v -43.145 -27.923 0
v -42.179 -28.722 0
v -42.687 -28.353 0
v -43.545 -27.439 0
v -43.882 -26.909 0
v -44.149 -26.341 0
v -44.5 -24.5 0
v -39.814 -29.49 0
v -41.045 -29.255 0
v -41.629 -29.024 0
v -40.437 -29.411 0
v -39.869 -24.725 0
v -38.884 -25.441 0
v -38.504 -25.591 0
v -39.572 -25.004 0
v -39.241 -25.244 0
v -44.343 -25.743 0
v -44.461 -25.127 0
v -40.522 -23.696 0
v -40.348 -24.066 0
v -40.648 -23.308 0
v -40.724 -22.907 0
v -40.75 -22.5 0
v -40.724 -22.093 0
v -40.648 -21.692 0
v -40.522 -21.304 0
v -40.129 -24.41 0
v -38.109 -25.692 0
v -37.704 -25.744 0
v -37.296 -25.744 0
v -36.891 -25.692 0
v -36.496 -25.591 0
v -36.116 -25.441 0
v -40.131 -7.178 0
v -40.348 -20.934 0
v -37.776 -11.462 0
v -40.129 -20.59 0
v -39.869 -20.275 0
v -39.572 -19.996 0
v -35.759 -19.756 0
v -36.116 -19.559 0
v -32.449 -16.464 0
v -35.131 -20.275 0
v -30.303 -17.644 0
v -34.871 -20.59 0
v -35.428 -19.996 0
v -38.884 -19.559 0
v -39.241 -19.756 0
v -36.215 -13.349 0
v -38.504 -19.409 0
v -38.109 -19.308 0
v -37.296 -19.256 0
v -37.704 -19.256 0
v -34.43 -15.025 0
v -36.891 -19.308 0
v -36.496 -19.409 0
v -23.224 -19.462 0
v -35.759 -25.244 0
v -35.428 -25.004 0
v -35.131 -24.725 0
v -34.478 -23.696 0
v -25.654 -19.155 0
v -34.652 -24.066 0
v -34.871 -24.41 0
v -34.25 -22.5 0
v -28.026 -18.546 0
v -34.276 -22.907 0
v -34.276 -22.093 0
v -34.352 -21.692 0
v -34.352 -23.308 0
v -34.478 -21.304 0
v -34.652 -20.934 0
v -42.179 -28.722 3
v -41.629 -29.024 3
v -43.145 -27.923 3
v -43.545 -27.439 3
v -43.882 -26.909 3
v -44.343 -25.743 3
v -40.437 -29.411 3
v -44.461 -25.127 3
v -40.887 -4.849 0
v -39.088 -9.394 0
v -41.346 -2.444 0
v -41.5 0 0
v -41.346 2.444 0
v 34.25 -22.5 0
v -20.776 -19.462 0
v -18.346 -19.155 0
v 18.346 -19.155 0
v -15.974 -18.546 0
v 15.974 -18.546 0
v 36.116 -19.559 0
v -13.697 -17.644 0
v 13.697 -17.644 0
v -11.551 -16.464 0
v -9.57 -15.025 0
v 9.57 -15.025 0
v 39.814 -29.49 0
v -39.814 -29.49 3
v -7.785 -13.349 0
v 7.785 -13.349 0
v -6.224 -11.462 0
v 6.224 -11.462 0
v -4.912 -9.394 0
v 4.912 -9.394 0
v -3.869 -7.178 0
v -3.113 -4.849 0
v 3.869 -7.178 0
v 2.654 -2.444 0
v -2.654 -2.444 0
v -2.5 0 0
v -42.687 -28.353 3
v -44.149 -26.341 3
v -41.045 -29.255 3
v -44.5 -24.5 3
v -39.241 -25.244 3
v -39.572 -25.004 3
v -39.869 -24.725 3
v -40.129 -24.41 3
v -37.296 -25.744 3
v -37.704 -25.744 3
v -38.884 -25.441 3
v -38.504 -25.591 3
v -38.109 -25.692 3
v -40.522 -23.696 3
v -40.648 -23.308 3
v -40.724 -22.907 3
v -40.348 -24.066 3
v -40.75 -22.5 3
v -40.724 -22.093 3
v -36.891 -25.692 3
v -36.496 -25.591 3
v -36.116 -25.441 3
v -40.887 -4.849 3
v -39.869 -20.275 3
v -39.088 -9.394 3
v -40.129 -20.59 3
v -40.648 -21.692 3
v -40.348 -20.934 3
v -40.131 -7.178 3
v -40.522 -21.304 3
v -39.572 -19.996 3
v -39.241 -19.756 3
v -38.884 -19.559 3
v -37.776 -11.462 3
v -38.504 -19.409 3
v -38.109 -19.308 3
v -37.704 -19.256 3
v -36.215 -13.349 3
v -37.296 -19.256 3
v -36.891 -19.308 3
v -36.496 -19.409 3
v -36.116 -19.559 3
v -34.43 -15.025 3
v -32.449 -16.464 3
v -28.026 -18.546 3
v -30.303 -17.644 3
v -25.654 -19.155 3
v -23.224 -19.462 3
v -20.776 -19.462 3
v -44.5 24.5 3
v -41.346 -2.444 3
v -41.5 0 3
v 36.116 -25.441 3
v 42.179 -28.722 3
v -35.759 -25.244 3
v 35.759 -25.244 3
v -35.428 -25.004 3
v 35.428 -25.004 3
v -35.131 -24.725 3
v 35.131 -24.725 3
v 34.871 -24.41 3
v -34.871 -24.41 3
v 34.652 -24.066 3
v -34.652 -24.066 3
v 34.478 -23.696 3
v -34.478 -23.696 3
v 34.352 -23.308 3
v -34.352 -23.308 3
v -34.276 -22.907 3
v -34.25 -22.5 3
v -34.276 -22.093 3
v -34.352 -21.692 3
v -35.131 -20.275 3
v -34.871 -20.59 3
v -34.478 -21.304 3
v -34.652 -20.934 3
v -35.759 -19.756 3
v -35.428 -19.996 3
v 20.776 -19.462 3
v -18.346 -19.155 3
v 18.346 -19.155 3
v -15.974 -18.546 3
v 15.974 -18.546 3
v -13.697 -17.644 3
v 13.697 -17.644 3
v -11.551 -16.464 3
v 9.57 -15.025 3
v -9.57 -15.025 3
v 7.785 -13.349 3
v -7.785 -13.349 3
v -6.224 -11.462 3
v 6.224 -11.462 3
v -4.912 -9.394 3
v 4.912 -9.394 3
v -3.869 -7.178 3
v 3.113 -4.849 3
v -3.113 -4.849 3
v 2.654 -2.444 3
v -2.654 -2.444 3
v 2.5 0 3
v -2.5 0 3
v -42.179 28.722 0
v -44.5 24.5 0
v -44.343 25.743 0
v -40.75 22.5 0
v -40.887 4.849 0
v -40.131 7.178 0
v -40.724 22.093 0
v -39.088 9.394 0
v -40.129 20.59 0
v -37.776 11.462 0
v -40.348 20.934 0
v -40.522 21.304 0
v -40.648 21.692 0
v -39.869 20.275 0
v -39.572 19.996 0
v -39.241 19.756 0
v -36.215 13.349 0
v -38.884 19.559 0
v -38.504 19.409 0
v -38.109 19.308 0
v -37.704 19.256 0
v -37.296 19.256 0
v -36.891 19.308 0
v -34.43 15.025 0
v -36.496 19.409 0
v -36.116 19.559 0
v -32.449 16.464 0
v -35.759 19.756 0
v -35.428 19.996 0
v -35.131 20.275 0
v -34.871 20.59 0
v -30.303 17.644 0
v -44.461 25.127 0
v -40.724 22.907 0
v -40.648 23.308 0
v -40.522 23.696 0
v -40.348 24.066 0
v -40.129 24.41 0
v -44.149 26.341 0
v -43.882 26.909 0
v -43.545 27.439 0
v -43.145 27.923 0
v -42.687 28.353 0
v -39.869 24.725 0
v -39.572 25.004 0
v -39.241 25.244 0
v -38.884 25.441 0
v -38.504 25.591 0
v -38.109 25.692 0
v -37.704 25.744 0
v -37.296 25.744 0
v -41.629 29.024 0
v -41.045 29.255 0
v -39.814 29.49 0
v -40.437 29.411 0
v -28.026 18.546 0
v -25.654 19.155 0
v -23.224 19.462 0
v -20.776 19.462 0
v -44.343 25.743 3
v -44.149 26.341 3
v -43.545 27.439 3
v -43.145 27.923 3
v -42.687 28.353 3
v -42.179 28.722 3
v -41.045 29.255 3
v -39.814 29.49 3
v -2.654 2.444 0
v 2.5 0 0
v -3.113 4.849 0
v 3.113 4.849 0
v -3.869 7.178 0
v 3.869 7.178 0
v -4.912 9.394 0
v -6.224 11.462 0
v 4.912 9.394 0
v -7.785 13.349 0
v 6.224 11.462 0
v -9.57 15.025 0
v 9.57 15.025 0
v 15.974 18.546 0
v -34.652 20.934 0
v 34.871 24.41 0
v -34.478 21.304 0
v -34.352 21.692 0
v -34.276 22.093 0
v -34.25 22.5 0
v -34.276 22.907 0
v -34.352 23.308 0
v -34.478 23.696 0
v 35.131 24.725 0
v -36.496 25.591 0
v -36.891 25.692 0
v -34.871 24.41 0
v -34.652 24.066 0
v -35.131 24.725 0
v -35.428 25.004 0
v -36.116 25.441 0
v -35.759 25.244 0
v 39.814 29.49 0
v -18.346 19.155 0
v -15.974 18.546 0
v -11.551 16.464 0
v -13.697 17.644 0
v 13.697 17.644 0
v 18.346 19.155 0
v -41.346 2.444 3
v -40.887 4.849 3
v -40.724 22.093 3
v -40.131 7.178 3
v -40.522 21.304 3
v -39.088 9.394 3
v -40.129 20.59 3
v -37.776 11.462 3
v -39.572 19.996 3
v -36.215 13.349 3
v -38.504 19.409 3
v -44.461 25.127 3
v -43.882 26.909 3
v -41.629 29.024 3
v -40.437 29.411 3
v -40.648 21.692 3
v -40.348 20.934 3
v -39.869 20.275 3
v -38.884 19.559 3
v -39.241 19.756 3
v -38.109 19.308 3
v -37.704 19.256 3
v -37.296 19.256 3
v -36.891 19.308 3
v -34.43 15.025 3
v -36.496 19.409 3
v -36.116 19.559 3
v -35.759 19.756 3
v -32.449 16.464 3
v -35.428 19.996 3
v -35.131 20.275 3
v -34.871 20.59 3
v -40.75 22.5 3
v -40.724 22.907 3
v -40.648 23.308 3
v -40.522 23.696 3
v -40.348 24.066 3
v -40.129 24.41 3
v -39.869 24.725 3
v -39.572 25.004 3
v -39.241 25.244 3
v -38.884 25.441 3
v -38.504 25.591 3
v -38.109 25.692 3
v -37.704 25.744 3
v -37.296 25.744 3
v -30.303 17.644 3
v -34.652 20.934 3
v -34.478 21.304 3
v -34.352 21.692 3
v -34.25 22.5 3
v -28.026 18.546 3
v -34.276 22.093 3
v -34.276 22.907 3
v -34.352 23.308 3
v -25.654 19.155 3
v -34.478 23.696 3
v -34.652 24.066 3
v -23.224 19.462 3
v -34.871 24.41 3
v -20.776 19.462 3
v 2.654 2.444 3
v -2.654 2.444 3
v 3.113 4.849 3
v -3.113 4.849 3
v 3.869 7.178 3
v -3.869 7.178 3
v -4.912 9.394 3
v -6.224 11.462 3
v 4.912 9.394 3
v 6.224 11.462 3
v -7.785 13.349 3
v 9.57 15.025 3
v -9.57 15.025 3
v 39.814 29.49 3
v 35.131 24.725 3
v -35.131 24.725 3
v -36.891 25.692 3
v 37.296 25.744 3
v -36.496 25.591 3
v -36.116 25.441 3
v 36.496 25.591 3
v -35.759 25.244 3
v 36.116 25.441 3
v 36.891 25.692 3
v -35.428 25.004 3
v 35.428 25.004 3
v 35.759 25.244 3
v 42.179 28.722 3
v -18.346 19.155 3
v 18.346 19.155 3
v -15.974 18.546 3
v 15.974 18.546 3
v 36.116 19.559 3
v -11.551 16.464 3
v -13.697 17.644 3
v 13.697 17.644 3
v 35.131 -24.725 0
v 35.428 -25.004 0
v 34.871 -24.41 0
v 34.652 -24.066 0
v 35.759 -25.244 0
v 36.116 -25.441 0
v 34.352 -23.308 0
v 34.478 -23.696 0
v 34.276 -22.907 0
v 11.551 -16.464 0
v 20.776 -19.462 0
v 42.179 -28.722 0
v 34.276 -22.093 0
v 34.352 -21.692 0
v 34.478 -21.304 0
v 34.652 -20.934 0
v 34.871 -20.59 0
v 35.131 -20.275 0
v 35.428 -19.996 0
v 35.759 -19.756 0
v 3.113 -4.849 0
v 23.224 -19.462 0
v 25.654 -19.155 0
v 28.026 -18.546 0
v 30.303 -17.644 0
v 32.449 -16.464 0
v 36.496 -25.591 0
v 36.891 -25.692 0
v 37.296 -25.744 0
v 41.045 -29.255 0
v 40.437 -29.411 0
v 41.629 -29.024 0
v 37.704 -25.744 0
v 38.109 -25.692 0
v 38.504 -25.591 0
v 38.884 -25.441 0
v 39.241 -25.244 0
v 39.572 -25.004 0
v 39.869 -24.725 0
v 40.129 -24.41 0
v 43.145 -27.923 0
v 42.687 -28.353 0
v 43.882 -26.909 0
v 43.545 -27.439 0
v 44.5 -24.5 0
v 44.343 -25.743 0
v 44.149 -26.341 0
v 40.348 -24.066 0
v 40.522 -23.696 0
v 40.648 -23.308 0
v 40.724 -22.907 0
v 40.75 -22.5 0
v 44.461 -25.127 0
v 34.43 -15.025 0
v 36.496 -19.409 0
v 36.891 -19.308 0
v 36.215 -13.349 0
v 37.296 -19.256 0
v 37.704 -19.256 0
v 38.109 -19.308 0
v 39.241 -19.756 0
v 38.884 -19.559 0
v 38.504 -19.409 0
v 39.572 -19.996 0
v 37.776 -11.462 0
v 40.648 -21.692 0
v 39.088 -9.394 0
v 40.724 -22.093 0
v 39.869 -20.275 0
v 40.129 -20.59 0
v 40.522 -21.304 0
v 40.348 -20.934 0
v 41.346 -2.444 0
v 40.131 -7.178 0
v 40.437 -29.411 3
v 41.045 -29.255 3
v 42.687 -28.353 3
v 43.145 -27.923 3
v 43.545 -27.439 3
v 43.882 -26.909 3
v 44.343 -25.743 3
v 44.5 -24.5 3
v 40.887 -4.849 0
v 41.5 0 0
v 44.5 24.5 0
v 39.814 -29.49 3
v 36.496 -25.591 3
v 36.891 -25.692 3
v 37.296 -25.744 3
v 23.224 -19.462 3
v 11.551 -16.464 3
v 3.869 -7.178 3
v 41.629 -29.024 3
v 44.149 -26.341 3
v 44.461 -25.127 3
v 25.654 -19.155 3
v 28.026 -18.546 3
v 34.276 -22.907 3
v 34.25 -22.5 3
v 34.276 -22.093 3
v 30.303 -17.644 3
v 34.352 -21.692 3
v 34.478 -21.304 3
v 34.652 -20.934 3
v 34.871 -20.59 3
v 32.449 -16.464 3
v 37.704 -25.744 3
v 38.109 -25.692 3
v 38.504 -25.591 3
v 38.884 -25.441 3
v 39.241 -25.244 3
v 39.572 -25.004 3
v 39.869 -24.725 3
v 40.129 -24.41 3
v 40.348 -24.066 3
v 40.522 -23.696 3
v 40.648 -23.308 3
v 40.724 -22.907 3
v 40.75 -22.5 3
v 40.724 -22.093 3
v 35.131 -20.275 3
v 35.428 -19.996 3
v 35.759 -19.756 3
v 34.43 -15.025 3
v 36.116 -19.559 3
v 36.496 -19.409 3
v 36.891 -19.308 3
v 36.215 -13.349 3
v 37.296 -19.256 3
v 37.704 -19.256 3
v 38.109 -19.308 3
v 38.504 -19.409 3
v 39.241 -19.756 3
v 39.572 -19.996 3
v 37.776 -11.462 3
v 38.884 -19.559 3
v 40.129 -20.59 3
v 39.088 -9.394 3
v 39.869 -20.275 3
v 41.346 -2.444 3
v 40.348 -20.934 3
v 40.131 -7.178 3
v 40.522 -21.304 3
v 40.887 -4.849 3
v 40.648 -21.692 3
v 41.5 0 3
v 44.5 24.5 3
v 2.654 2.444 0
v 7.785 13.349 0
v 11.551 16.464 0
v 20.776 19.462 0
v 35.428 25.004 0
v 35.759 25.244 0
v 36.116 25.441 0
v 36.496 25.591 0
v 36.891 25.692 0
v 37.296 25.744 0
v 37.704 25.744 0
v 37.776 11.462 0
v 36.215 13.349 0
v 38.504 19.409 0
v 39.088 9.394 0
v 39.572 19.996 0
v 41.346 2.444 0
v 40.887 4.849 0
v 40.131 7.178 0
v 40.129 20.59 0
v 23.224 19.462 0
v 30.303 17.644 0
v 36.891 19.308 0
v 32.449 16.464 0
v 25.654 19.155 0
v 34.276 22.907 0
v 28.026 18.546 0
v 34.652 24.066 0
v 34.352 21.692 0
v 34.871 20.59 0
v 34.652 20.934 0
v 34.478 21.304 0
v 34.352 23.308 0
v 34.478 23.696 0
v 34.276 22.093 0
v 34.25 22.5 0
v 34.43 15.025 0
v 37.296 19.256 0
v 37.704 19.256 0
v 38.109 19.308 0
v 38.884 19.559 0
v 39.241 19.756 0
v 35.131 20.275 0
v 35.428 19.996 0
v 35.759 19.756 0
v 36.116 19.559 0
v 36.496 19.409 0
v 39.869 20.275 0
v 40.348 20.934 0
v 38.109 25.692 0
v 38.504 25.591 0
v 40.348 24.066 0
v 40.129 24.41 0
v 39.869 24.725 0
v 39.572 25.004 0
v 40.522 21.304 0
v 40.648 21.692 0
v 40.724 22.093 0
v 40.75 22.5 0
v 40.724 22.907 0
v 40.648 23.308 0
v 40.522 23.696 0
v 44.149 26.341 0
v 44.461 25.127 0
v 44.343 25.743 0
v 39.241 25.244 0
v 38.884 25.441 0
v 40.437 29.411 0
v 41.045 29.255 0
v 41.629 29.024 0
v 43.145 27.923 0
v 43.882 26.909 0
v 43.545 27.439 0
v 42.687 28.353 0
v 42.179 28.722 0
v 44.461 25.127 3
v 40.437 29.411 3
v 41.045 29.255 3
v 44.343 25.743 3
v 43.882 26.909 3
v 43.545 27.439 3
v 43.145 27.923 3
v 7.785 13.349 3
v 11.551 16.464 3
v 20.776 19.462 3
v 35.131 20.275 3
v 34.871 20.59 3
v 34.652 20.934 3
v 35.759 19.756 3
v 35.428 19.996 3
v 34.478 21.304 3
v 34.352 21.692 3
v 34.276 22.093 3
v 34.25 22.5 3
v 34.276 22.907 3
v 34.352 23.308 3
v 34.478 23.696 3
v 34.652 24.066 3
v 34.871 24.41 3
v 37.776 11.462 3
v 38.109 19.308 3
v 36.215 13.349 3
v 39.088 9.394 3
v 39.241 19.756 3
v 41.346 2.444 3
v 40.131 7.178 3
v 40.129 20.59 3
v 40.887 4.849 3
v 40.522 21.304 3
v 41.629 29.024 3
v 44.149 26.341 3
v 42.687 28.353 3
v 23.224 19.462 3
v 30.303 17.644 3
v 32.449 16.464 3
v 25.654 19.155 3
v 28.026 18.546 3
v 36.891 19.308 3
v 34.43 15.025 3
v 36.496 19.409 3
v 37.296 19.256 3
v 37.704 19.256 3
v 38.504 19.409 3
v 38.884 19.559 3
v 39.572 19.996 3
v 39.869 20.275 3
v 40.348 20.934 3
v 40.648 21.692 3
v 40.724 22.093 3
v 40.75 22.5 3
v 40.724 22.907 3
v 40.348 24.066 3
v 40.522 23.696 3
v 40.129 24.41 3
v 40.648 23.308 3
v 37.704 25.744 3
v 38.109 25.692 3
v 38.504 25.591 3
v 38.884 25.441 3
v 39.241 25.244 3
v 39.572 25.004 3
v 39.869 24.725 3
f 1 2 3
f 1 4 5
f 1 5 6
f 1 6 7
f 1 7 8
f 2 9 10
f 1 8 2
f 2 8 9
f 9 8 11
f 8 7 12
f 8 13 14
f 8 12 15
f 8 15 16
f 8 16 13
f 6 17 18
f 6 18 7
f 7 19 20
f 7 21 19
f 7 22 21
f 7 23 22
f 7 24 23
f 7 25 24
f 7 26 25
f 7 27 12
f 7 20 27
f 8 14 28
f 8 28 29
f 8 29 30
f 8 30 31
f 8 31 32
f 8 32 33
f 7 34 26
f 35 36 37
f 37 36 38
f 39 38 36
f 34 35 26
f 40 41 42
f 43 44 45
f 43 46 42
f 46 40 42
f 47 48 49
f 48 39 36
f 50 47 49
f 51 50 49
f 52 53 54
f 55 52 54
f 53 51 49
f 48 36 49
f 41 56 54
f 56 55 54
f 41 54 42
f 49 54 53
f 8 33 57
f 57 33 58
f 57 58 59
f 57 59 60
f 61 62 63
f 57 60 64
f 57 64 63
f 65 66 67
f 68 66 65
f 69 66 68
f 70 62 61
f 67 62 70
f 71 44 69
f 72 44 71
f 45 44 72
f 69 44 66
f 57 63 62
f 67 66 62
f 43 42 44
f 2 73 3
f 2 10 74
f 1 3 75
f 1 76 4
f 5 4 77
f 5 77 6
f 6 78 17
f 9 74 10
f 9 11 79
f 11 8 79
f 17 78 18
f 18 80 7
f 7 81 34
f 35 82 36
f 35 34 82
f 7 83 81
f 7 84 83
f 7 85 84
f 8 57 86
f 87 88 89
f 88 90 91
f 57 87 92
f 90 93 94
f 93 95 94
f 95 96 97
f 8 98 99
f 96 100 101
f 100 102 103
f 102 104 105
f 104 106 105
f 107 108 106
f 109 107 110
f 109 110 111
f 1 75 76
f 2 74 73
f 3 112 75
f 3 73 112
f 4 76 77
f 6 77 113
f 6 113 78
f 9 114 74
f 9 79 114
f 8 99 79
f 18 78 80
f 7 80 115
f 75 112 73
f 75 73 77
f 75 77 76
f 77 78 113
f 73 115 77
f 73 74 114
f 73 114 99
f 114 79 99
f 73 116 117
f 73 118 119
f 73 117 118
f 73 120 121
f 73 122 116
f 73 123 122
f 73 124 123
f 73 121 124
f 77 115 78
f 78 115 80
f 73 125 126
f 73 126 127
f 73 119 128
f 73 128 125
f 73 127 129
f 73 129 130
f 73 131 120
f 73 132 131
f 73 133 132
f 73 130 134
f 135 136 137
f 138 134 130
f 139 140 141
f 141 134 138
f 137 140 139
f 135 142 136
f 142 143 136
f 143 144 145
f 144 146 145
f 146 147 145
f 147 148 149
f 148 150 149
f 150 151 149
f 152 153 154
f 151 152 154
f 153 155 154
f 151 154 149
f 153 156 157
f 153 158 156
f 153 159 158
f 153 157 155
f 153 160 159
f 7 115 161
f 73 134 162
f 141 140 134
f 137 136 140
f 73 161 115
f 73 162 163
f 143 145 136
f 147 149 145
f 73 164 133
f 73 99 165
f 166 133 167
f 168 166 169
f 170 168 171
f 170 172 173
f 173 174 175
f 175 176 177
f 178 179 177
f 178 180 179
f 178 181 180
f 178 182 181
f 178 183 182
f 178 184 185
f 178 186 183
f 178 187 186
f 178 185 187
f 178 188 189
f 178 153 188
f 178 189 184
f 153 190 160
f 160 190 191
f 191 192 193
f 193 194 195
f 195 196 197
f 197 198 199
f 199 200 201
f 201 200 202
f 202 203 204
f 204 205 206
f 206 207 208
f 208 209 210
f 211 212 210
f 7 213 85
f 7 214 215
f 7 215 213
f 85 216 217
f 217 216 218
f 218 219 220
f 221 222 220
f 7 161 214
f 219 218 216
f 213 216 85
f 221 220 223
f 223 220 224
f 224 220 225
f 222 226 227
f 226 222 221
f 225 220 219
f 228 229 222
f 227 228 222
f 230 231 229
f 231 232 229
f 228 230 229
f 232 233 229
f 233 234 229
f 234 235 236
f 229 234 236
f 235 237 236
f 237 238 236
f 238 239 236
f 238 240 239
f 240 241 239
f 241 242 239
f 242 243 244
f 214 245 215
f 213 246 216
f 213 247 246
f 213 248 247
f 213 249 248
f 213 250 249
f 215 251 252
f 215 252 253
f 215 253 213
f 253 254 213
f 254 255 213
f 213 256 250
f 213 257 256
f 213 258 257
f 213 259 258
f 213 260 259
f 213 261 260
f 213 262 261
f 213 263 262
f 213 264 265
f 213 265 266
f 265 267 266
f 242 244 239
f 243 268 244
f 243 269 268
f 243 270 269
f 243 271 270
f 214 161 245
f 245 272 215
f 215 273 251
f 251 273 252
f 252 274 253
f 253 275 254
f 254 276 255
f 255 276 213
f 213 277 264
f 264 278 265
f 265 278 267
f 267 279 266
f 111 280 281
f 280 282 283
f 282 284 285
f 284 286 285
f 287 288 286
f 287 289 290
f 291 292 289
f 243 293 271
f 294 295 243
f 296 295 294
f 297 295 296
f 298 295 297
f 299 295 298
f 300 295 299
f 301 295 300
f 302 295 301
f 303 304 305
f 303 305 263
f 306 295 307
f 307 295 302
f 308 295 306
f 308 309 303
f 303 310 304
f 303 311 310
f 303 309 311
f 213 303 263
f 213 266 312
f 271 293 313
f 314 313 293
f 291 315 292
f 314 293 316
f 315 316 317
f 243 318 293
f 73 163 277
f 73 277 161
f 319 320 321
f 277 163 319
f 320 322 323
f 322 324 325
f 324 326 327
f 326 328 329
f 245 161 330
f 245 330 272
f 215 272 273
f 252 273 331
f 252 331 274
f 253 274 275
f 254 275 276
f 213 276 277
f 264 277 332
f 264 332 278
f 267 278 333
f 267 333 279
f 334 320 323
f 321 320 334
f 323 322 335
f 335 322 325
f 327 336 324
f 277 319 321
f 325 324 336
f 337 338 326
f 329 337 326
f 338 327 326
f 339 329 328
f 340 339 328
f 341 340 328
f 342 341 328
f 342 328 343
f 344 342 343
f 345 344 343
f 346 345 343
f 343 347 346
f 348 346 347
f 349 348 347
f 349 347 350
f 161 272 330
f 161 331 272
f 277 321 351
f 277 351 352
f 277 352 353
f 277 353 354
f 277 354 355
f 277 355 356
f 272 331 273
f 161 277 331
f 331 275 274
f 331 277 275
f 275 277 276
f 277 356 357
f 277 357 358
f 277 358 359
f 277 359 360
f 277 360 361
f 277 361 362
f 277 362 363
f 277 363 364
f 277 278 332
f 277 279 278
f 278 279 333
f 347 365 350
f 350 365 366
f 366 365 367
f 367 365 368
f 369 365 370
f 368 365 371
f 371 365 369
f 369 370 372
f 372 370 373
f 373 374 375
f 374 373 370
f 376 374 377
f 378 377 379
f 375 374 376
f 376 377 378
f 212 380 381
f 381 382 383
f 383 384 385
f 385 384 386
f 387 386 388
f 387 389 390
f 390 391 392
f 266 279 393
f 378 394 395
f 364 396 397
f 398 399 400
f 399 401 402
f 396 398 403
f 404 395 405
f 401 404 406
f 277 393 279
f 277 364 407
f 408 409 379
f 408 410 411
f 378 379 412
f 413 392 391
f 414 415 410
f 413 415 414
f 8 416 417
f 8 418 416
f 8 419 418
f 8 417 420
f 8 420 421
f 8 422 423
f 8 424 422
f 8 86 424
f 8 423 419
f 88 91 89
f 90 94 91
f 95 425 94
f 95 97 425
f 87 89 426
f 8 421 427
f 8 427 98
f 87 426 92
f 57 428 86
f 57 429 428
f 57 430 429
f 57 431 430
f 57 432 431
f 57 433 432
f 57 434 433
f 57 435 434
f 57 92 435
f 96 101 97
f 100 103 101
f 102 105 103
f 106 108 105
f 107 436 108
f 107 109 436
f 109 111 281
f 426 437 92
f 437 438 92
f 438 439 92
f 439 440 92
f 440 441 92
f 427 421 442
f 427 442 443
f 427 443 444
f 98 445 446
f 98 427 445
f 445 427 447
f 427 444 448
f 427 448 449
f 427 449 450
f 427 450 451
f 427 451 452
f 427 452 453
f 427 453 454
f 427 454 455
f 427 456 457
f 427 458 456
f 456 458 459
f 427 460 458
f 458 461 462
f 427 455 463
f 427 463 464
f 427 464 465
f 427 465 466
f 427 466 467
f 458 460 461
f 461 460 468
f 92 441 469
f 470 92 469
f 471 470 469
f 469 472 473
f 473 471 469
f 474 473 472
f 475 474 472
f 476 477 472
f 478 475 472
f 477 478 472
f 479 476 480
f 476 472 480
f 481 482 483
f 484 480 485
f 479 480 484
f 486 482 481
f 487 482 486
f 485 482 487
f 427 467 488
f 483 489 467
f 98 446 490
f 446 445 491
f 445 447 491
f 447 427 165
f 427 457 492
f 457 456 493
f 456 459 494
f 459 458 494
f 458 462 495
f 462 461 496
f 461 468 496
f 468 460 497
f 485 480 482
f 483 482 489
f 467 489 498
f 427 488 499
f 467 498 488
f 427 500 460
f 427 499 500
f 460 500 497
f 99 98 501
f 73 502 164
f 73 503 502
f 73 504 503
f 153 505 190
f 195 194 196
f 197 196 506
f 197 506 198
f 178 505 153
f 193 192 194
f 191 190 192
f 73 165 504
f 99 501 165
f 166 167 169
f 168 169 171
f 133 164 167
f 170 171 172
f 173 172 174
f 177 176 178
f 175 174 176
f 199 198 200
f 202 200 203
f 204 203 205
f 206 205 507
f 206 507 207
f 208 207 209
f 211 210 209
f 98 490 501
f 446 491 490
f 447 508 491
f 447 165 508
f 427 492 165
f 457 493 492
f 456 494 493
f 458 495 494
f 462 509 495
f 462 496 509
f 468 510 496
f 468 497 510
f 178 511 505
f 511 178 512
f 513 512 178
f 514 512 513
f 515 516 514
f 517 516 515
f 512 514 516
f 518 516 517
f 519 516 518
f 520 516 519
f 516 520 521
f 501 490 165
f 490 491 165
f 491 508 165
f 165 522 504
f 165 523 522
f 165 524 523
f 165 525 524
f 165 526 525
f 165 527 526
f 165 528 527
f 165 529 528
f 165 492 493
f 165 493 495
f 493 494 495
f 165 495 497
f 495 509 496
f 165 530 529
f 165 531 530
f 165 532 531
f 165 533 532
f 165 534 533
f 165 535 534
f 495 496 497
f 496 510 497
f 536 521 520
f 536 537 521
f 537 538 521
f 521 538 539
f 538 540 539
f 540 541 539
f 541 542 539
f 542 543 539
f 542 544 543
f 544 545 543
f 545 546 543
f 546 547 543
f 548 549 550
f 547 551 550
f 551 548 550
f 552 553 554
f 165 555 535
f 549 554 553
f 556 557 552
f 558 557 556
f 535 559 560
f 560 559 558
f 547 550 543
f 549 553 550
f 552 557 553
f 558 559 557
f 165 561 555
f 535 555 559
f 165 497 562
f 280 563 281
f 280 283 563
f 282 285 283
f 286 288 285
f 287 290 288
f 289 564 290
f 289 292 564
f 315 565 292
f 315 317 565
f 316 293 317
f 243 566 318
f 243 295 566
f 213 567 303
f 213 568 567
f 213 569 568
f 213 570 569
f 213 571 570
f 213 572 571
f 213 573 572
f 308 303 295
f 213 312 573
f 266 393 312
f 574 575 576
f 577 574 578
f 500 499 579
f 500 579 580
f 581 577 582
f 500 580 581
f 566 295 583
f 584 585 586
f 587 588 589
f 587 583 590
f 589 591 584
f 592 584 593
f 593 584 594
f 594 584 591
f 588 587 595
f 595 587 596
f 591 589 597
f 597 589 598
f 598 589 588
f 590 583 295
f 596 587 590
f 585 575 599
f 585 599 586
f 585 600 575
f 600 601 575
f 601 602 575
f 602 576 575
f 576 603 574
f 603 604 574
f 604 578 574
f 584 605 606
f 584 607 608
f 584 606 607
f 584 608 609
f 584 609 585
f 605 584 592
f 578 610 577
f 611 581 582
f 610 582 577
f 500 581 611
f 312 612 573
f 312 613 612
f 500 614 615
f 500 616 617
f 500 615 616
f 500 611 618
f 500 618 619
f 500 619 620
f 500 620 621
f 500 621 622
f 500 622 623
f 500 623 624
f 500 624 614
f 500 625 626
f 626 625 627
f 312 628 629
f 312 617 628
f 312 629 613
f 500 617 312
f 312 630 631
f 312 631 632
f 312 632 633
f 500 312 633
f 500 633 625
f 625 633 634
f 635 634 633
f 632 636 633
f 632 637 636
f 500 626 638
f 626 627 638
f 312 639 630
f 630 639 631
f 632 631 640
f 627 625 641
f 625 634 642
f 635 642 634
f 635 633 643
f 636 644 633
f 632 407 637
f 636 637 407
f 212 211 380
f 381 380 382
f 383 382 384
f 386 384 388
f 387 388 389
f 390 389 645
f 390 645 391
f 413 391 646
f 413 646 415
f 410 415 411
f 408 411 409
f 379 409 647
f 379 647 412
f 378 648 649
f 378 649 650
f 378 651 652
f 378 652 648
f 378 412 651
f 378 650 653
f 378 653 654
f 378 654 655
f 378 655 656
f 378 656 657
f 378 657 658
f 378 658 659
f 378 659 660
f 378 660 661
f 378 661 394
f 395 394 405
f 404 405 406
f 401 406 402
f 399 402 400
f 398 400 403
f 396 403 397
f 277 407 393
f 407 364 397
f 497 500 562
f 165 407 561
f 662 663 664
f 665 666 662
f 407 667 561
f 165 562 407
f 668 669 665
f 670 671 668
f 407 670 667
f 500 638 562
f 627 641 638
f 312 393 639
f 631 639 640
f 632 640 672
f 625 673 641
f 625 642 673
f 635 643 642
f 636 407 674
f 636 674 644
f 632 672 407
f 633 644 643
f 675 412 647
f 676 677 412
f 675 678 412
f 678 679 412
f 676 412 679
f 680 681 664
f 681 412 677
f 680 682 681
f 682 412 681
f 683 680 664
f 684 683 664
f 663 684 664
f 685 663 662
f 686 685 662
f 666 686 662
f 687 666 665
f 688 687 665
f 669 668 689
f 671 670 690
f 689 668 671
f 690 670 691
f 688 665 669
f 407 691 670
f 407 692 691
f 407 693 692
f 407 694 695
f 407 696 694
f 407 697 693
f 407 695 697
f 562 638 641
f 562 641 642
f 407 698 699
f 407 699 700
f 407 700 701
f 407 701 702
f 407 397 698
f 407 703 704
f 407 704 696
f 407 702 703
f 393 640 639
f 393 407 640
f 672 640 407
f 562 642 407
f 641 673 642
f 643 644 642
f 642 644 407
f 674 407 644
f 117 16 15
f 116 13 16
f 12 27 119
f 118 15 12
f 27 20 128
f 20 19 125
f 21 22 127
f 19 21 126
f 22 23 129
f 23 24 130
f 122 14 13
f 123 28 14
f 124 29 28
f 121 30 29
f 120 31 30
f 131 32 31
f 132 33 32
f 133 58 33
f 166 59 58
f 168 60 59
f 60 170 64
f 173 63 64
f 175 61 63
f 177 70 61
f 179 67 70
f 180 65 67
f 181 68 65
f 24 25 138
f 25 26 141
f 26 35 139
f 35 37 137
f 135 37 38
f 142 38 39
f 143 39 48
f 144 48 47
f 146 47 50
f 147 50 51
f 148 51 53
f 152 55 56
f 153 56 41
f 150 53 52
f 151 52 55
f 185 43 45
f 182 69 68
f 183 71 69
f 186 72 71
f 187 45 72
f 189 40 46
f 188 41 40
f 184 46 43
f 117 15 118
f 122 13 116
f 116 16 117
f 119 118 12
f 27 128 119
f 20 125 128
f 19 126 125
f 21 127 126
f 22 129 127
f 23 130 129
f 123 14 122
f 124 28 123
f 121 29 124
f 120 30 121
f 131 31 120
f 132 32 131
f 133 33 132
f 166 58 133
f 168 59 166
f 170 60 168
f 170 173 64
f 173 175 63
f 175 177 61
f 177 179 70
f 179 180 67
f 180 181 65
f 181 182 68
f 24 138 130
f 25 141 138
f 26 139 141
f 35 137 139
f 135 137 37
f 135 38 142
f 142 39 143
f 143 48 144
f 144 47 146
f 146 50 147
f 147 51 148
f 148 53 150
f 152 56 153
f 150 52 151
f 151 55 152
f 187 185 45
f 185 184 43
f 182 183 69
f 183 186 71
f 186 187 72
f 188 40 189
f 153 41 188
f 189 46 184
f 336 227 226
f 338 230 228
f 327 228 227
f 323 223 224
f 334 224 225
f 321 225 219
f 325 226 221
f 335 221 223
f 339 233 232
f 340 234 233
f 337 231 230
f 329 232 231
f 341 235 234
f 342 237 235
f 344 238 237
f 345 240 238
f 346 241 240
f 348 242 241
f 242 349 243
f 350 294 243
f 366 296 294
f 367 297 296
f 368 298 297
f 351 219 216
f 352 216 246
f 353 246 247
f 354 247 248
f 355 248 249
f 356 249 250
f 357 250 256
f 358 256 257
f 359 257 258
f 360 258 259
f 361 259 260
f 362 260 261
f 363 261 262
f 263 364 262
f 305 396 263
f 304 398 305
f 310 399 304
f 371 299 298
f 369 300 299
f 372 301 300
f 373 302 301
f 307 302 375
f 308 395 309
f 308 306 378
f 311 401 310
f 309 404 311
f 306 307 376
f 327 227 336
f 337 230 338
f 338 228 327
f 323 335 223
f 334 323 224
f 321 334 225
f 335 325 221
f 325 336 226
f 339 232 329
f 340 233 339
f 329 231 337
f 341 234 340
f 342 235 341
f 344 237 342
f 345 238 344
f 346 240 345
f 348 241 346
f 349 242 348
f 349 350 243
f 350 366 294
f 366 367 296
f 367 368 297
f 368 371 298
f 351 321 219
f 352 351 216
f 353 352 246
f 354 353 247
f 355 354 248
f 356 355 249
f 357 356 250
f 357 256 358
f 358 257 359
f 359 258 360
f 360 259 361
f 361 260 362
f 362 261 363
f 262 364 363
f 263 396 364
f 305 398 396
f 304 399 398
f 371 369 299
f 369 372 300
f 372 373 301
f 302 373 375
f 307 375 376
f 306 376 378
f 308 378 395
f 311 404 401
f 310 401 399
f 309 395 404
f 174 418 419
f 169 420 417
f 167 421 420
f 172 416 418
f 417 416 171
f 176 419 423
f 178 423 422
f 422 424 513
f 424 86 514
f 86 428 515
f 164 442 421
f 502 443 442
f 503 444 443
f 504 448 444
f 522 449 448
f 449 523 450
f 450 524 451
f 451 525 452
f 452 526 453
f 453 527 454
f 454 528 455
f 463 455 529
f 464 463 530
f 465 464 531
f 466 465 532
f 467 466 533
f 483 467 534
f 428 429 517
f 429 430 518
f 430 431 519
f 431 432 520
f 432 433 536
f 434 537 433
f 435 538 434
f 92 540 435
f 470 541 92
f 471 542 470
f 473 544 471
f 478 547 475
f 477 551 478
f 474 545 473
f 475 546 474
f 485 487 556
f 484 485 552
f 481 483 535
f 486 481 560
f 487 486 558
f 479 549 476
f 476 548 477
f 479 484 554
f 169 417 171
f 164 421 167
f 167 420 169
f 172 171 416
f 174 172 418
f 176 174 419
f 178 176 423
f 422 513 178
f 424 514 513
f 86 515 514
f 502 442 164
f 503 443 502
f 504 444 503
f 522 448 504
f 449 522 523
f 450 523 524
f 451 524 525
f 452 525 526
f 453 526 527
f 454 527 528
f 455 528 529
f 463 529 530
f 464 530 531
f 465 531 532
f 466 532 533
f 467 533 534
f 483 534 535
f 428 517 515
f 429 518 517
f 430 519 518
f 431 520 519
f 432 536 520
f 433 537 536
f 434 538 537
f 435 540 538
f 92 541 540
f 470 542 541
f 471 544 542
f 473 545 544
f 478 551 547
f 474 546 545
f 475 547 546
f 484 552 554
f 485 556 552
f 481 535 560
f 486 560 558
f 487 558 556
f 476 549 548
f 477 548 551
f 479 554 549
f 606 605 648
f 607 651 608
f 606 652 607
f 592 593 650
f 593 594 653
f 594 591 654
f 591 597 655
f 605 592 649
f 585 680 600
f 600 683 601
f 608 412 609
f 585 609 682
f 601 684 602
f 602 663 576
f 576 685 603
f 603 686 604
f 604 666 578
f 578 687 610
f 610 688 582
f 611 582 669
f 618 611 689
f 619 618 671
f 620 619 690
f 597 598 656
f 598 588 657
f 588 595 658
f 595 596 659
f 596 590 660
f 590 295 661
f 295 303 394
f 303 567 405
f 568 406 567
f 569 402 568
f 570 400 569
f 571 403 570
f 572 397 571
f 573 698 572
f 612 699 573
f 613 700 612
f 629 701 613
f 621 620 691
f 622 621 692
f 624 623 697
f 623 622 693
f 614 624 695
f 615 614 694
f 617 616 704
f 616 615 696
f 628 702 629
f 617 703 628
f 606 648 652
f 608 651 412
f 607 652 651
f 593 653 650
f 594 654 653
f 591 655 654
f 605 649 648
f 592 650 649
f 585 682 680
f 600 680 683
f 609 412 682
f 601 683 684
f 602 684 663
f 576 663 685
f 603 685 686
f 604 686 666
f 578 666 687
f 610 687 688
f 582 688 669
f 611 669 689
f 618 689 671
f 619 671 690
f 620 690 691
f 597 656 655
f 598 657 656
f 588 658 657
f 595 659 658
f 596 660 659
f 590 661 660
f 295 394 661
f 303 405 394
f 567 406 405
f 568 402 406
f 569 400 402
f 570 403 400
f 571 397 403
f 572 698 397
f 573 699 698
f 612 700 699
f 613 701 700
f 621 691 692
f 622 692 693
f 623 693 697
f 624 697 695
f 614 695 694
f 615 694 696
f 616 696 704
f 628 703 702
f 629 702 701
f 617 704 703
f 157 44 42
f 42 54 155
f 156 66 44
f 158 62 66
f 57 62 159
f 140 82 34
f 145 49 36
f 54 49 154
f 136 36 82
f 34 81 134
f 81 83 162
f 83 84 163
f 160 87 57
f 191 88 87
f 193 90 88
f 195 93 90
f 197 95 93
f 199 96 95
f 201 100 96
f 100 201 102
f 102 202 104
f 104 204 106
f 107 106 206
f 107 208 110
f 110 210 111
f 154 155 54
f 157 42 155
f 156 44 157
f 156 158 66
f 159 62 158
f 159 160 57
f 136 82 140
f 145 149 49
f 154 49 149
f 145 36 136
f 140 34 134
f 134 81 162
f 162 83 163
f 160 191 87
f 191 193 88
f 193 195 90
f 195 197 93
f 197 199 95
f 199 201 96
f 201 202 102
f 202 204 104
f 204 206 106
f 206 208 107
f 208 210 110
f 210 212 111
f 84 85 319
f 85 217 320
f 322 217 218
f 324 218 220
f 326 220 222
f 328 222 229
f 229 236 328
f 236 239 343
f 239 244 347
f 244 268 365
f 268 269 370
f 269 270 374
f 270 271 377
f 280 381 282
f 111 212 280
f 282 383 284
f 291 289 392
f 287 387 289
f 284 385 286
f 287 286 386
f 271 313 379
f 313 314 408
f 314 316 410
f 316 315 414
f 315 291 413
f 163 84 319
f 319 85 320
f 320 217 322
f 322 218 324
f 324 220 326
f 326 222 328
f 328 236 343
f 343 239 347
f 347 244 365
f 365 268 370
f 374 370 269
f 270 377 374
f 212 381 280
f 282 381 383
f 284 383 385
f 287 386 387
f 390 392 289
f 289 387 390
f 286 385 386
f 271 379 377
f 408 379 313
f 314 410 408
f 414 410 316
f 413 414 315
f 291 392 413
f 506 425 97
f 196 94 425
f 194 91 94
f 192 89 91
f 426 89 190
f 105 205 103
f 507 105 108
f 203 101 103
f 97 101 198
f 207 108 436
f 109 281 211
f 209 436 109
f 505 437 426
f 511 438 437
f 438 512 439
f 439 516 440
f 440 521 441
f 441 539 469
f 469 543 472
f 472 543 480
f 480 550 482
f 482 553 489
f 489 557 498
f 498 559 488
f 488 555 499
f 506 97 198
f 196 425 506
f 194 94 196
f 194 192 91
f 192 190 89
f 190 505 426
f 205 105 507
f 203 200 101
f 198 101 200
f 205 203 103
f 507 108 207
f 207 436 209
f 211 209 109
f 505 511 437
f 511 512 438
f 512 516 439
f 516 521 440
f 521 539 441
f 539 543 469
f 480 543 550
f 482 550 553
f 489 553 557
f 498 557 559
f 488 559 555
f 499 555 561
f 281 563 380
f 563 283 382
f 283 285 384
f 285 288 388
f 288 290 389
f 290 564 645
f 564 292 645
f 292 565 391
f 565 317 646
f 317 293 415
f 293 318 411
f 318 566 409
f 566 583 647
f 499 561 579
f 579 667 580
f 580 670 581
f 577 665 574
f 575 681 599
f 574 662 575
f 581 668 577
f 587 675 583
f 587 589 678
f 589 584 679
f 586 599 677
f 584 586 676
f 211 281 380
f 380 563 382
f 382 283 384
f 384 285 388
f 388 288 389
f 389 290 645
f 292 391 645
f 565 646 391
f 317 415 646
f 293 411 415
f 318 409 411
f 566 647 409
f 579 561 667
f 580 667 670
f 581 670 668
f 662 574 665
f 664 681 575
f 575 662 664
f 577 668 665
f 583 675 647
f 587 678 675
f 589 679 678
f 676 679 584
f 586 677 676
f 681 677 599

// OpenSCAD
$fn = 50;

difference() {
	union() {
		hull() {
			translate(v = [-39.5, 24.5, 0]) {
				cylinder(h = 3, r = 5);
			}
			translate(v = [39.5, 24.5, 0]) {
				cylinder(h = 3, r = 5);
			}
			translate(v = [-39.5, -24.5, 0]) {
				cylinder(h = 3, r = 5);
			}
			translate(v = [39.5, -24.5, 0]) {
				cylinder(h = 3, r = 5);
			}
		}
	}
	union() {
		translate(v = [-37.5, -22.5, -100.0]) {
			cylinder(h = 200, r = 3.25);
		}
		translate(v = [-37.5, 22.5, -100.0]) {
			cylinder(h = 200, r = 3.25);
		}
		translate(v = [37.5, -22.5, -100.0]) {
			cylinder(h = 200, r = 3.25);
		}
		translate(v = [37.5, 22.5, -100.0]) {
			cylinder(h = 200, r = 3.25);
		}
		translate(v = [-37.5, -22.5, -100.0]) {
			cylinder(h = 200, r = 1.8);
		}
		translate(v = [-37.5, 22.5, -100.0]) {
			cylinder(h = 200, r = 1.8);
		}
		translate(v = [37.5, -22.5, -100.0]) {
			cylinder(h = 200, r = 1.8);
		}
		translate(v = [37.5, 22.5, -100.0]) {
			cylinder(h = 200, r = 1.8);
		}
		translate(v = [-22.0, 0, 0.0]) {
			cylinder(h = 3, r = 19.5);
		}
		translate(v = [22.0, 0, 0.0]) {
			cylinder(h = 3, r = 19.5);
		}
	}
}
